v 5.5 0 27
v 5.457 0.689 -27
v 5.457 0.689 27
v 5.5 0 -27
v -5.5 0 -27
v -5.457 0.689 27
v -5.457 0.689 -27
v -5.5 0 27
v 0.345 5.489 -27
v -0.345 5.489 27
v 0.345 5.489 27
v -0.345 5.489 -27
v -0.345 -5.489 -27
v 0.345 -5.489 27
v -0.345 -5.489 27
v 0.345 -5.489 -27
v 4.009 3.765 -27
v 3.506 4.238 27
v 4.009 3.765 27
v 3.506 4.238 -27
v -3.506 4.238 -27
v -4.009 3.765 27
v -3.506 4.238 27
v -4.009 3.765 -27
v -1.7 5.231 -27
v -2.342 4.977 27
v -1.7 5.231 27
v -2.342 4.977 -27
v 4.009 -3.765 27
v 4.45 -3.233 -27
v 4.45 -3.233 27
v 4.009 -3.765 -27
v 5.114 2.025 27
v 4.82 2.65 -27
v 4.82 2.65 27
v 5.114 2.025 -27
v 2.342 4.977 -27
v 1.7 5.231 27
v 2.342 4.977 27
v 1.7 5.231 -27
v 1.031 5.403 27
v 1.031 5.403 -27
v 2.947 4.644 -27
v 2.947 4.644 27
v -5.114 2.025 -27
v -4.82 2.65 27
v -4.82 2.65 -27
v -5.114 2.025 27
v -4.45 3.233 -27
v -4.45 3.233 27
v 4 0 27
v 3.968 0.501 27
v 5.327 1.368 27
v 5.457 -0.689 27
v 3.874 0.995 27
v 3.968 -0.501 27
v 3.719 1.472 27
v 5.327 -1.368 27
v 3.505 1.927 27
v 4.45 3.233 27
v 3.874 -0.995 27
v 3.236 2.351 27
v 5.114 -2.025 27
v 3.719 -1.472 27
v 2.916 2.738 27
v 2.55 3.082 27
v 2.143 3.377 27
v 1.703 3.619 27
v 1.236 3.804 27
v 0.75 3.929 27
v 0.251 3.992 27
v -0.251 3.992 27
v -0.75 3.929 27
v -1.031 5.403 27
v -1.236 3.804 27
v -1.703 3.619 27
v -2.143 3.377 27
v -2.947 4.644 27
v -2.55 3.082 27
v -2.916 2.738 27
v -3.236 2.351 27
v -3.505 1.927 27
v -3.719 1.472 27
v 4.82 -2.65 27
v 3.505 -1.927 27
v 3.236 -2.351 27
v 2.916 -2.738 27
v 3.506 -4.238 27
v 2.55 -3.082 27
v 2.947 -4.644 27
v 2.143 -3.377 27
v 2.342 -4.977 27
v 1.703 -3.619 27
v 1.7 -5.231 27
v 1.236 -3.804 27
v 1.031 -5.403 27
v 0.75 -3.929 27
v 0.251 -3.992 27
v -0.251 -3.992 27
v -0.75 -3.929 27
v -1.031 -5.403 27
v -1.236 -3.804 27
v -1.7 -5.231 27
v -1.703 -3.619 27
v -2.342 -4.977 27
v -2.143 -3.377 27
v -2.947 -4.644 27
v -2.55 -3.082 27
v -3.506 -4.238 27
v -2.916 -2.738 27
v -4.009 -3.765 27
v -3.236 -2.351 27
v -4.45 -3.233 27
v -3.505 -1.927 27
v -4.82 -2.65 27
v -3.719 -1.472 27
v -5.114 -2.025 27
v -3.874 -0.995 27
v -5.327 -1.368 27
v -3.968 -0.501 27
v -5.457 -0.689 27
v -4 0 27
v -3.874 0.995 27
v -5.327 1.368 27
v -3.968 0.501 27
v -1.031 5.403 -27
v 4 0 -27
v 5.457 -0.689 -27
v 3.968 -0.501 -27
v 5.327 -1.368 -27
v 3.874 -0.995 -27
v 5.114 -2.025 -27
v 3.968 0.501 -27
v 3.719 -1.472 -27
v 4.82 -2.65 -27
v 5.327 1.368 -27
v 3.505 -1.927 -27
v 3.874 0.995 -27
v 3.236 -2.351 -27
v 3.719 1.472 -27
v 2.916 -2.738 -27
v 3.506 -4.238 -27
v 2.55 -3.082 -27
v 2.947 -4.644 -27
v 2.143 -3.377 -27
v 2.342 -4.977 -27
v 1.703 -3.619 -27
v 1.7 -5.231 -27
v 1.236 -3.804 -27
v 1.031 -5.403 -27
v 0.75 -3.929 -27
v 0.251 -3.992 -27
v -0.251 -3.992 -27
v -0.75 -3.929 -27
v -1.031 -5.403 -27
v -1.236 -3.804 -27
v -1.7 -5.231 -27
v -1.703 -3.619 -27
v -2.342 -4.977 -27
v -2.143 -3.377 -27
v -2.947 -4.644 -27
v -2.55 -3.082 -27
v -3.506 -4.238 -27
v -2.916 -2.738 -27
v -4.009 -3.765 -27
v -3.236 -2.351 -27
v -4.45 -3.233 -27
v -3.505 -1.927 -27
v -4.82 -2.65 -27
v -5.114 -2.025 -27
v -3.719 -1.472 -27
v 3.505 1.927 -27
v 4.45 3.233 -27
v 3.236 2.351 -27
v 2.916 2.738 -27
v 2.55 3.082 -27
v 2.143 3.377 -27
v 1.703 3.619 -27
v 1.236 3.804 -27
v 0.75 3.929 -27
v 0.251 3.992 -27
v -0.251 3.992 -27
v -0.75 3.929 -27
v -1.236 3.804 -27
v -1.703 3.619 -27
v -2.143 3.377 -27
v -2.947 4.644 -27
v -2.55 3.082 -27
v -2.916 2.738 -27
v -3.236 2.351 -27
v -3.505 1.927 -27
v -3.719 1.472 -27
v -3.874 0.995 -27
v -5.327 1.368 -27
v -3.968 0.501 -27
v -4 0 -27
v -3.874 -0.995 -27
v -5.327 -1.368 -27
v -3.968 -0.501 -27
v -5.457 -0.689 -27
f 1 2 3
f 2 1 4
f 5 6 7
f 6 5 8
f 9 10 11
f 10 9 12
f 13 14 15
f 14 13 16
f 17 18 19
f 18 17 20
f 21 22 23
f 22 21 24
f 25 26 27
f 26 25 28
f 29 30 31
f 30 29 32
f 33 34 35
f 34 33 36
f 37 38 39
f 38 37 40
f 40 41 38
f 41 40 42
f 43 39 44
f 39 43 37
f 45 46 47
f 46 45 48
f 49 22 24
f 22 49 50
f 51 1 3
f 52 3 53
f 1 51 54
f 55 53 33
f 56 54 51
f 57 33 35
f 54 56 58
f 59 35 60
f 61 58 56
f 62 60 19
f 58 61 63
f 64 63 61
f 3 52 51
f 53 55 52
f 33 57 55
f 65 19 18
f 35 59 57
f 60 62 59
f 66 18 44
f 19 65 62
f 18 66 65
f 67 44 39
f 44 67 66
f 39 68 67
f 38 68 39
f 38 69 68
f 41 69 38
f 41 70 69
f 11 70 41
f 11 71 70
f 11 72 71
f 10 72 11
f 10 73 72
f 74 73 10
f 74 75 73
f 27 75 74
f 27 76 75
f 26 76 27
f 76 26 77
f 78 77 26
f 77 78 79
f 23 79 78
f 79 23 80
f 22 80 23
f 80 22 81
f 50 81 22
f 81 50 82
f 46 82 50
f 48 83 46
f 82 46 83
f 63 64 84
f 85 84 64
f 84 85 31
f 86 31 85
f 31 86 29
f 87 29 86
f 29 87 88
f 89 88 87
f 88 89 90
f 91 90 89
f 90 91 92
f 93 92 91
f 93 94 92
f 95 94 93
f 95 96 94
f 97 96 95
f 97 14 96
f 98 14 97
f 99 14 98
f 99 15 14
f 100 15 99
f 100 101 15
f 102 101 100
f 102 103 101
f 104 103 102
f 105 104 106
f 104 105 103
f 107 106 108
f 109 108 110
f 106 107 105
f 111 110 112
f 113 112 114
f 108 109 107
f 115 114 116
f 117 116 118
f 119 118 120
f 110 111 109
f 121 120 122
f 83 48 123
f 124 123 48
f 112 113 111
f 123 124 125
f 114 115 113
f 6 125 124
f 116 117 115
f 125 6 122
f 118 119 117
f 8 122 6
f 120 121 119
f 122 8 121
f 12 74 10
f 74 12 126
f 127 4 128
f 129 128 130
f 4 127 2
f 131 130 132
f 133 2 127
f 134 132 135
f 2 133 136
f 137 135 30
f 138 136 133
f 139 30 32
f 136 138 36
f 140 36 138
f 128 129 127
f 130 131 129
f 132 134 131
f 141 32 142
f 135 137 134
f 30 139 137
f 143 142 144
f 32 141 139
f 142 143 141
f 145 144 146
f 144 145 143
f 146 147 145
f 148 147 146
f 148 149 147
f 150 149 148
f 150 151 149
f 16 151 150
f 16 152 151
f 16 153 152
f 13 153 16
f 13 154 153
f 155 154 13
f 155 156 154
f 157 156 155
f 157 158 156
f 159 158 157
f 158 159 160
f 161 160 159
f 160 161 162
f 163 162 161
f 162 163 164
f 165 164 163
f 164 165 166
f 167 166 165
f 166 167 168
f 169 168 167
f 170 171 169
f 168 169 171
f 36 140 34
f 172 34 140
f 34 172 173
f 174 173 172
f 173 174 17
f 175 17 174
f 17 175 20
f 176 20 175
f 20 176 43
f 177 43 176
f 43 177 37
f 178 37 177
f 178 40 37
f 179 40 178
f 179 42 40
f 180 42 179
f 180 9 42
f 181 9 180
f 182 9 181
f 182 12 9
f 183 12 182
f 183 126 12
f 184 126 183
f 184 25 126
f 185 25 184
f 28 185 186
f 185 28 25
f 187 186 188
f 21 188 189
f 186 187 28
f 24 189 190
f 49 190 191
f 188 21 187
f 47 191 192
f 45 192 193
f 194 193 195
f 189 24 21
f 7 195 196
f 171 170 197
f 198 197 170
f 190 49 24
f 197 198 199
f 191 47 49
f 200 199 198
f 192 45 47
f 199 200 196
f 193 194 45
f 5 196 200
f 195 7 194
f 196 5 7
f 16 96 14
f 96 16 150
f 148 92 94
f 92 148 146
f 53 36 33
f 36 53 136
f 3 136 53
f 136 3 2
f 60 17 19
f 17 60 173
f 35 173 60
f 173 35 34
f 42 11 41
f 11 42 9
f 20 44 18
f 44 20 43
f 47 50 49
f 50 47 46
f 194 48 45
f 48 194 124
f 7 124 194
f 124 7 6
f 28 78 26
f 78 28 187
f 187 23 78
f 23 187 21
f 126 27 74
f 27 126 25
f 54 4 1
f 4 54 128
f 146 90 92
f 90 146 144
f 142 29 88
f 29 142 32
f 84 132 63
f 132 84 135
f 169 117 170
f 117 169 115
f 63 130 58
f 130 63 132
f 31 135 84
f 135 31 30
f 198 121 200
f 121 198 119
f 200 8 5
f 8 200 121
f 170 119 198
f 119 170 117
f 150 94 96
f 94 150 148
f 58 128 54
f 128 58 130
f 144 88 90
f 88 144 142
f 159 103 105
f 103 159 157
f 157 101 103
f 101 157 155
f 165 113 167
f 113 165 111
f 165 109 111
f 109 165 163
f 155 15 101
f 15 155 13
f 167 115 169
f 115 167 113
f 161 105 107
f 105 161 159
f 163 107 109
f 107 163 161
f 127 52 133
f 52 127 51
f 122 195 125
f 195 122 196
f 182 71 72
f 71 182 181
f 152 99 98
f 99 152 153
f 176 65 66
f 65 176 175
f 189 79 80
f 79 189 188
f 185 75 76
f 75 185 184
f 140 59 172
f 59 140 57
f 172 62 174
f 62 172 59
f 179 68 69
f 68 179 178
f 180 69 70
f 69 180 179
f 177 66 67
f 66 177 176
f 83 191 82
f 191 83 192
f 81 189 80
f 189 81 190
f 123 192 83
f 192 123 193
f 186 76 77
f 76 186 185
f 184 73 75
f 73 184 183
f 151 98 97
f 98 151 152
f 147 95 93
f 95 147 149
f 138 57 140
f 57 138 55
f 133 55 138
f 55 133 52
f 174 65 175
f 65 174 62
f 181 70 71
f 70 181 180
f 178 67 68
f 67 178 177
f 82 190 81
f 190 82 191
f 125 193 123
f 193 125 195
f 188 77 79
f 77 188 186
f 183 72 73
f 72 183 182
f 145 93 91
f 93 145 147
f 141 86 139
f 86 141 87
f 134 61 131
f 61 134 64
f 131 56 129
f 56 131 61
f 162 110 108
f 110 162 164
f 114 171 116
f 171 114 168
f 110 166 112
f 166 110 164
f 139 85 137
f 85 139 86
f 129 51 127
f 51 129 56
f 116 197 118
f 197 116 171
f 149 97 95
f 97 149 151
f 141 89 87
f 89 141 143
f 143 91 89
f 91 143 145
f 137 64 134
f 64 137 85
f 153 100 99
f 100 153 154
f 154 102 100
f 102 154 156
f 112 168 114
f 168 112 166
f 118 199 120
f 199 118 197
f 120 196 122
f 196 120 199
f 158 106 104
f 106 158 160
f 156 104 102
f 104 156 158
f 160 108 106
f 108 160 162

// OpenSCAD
$fn = 50;


difference() {
	union() {
		translate(v = [0, 0, -27.0000000000]) {
			cylinder(h = 54, r = 5.5000000000);
		}
	}
	union() {
		translate(v = [0, 0, -100.0000000000]) {
			cylinder(h = 200, r = 4);
		}
	}
}
